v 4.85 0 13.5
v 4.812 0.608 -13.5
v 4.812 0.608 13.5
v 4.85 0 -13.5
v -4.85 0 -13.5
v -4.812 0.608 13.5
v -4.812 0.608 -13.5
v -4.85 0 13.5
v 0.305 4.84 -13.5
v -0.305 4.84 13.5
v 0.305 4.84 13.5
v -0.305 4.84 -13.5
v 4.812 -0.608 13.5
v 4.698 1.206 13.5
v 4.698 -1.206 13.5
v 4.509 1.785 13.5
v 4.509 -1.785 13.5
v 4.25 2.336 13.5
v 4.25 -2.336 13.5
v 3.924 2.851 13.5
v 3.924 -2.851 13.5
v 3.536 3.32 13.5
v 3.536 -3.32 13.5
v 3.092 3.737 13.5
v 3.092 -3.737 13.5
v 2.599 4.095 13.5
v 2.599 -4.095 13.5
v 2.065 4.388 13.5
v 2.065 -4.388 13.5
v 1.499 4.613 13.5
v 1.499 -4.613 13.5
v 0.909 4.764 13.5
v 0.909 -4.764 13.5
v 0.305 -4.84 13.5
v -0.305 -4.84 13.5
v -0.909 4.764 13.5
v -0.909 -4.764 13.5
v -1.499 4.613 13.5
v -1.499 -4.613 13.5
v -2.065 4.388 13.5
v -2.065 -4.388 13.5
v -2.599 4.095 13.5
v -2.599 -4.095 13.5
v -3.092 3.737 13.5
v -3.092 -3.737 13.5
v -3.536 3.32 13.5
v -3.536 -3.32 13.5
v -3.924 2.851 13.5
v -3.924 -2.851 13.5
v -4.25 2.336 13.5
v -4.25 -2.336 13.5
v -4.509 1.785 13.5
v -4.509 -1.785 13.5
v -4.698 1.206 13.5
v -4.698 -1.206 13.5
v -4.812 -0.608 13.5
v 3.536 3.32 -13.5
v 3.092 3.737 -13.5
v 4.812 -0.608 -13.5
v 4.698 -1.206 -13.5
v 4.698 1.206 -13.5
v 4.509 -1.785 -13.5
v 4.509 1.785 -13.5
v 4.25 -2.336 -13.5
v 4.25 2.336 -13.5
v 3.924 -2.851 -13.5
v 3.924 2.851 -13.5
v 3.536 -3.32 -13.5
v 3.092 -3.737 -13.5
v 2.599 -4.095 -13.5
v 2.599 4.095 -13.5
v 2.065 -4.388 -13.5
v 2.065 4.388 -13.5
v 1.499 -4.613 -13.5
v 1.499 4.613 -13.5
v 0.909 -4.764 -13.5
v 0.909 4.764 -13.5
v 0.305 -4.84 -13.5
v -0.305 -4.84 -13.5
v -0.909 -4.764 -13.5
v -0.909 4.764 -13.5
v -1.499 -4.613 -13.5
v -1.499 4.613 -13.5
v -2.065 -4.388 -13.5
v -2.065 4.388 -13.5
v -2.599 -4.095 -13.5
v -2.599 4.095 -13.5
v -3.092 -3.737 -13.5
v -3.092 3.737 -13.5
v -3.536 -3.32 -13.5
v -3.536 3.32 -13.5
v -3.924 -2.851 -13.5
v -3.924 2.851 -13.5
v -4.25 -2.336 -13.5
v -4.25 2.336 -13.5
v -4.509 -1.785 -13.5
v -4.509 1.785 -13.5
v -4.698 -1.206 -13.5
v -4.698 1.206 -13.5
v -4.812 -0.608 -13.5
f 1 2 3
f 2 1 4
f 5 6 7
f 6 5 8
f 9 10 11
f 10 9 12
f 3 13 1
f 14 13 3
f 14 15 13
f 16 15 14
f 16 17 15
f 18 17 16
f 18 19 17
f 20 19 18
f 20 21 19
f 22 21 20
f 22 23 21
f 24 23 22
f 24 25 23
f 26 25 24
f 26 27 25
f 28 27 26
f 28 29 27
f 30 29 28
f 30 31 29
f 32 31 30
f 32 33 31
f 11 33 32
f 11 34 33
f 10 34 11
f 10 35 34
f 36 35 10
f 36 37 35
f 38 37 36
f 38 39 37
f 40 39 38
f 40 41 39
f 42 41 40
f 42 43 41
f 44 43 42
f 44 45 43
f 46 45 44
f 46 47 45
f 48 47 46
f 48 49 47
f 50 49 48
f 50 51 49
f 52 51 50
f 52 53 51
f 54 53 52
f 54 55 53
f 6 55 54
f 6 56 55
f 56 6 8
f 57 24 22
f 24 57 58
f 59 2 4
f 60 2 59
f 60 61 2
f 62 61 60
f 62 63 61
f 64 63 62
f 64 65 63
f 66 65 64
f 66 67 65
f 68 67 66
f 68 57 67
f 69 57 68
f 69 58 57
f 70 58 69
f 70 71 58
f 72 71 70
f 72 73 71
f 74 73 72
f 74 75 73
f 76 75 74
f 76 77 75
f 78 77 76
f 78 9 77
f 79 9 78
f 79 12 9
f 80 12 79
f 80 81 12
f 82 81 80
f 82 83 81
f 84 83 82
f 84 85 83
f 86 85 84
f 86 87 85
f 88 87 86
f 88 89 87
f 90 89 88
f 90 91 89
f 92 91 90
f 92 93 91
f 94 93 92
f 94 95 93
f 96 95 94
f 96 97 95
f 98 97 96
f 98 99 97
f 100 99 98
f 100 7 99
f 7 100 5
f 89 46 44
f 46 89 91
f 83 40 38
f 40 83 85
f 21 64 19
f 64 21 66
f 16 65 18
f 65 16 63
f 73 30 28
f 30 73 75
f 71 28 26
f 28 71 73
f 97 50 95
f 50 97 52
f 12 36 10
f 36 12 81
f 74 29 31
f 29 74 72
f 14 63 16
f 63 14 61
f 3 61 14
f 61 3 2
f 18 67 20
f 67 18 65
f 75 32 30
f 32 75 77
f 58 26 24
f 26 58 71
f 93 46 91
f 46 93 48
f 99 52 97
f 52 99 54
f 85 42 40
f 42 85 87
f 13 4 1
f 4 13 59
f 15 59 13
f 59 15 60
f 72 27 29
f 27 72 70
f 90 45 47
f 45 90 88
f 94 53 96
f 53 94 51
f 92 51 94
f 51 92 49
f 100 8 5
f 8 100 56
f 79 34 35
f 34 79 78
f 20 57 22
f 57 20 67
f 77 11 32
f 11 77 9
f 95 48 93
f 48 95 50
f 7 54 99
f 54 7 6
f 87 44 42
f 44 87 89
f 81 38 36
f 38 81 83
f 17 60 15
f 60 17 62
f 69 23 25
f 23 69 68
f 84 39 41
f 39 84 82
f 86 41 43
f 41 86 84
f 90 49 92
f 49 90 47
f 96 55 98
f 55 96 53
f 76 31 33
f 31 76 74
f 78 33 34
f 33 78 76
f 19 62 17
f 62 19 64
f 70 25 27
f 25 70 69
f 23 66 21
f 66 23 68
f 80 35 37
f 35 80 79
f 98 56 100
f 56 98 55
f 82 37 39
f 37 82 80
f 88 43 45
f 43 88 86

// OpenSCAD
$fn = 50;


difference() {
	union() {
		translate(v = [0, 0, -13.5000000000]) {
			cylinder(h = 27, r = 4.8500000000);
		}
	}
	union() {
		translate(v = [0, 0, -100.0000000000]) {
			cylinder(h = 200, r = 0);
		}
	}
}
